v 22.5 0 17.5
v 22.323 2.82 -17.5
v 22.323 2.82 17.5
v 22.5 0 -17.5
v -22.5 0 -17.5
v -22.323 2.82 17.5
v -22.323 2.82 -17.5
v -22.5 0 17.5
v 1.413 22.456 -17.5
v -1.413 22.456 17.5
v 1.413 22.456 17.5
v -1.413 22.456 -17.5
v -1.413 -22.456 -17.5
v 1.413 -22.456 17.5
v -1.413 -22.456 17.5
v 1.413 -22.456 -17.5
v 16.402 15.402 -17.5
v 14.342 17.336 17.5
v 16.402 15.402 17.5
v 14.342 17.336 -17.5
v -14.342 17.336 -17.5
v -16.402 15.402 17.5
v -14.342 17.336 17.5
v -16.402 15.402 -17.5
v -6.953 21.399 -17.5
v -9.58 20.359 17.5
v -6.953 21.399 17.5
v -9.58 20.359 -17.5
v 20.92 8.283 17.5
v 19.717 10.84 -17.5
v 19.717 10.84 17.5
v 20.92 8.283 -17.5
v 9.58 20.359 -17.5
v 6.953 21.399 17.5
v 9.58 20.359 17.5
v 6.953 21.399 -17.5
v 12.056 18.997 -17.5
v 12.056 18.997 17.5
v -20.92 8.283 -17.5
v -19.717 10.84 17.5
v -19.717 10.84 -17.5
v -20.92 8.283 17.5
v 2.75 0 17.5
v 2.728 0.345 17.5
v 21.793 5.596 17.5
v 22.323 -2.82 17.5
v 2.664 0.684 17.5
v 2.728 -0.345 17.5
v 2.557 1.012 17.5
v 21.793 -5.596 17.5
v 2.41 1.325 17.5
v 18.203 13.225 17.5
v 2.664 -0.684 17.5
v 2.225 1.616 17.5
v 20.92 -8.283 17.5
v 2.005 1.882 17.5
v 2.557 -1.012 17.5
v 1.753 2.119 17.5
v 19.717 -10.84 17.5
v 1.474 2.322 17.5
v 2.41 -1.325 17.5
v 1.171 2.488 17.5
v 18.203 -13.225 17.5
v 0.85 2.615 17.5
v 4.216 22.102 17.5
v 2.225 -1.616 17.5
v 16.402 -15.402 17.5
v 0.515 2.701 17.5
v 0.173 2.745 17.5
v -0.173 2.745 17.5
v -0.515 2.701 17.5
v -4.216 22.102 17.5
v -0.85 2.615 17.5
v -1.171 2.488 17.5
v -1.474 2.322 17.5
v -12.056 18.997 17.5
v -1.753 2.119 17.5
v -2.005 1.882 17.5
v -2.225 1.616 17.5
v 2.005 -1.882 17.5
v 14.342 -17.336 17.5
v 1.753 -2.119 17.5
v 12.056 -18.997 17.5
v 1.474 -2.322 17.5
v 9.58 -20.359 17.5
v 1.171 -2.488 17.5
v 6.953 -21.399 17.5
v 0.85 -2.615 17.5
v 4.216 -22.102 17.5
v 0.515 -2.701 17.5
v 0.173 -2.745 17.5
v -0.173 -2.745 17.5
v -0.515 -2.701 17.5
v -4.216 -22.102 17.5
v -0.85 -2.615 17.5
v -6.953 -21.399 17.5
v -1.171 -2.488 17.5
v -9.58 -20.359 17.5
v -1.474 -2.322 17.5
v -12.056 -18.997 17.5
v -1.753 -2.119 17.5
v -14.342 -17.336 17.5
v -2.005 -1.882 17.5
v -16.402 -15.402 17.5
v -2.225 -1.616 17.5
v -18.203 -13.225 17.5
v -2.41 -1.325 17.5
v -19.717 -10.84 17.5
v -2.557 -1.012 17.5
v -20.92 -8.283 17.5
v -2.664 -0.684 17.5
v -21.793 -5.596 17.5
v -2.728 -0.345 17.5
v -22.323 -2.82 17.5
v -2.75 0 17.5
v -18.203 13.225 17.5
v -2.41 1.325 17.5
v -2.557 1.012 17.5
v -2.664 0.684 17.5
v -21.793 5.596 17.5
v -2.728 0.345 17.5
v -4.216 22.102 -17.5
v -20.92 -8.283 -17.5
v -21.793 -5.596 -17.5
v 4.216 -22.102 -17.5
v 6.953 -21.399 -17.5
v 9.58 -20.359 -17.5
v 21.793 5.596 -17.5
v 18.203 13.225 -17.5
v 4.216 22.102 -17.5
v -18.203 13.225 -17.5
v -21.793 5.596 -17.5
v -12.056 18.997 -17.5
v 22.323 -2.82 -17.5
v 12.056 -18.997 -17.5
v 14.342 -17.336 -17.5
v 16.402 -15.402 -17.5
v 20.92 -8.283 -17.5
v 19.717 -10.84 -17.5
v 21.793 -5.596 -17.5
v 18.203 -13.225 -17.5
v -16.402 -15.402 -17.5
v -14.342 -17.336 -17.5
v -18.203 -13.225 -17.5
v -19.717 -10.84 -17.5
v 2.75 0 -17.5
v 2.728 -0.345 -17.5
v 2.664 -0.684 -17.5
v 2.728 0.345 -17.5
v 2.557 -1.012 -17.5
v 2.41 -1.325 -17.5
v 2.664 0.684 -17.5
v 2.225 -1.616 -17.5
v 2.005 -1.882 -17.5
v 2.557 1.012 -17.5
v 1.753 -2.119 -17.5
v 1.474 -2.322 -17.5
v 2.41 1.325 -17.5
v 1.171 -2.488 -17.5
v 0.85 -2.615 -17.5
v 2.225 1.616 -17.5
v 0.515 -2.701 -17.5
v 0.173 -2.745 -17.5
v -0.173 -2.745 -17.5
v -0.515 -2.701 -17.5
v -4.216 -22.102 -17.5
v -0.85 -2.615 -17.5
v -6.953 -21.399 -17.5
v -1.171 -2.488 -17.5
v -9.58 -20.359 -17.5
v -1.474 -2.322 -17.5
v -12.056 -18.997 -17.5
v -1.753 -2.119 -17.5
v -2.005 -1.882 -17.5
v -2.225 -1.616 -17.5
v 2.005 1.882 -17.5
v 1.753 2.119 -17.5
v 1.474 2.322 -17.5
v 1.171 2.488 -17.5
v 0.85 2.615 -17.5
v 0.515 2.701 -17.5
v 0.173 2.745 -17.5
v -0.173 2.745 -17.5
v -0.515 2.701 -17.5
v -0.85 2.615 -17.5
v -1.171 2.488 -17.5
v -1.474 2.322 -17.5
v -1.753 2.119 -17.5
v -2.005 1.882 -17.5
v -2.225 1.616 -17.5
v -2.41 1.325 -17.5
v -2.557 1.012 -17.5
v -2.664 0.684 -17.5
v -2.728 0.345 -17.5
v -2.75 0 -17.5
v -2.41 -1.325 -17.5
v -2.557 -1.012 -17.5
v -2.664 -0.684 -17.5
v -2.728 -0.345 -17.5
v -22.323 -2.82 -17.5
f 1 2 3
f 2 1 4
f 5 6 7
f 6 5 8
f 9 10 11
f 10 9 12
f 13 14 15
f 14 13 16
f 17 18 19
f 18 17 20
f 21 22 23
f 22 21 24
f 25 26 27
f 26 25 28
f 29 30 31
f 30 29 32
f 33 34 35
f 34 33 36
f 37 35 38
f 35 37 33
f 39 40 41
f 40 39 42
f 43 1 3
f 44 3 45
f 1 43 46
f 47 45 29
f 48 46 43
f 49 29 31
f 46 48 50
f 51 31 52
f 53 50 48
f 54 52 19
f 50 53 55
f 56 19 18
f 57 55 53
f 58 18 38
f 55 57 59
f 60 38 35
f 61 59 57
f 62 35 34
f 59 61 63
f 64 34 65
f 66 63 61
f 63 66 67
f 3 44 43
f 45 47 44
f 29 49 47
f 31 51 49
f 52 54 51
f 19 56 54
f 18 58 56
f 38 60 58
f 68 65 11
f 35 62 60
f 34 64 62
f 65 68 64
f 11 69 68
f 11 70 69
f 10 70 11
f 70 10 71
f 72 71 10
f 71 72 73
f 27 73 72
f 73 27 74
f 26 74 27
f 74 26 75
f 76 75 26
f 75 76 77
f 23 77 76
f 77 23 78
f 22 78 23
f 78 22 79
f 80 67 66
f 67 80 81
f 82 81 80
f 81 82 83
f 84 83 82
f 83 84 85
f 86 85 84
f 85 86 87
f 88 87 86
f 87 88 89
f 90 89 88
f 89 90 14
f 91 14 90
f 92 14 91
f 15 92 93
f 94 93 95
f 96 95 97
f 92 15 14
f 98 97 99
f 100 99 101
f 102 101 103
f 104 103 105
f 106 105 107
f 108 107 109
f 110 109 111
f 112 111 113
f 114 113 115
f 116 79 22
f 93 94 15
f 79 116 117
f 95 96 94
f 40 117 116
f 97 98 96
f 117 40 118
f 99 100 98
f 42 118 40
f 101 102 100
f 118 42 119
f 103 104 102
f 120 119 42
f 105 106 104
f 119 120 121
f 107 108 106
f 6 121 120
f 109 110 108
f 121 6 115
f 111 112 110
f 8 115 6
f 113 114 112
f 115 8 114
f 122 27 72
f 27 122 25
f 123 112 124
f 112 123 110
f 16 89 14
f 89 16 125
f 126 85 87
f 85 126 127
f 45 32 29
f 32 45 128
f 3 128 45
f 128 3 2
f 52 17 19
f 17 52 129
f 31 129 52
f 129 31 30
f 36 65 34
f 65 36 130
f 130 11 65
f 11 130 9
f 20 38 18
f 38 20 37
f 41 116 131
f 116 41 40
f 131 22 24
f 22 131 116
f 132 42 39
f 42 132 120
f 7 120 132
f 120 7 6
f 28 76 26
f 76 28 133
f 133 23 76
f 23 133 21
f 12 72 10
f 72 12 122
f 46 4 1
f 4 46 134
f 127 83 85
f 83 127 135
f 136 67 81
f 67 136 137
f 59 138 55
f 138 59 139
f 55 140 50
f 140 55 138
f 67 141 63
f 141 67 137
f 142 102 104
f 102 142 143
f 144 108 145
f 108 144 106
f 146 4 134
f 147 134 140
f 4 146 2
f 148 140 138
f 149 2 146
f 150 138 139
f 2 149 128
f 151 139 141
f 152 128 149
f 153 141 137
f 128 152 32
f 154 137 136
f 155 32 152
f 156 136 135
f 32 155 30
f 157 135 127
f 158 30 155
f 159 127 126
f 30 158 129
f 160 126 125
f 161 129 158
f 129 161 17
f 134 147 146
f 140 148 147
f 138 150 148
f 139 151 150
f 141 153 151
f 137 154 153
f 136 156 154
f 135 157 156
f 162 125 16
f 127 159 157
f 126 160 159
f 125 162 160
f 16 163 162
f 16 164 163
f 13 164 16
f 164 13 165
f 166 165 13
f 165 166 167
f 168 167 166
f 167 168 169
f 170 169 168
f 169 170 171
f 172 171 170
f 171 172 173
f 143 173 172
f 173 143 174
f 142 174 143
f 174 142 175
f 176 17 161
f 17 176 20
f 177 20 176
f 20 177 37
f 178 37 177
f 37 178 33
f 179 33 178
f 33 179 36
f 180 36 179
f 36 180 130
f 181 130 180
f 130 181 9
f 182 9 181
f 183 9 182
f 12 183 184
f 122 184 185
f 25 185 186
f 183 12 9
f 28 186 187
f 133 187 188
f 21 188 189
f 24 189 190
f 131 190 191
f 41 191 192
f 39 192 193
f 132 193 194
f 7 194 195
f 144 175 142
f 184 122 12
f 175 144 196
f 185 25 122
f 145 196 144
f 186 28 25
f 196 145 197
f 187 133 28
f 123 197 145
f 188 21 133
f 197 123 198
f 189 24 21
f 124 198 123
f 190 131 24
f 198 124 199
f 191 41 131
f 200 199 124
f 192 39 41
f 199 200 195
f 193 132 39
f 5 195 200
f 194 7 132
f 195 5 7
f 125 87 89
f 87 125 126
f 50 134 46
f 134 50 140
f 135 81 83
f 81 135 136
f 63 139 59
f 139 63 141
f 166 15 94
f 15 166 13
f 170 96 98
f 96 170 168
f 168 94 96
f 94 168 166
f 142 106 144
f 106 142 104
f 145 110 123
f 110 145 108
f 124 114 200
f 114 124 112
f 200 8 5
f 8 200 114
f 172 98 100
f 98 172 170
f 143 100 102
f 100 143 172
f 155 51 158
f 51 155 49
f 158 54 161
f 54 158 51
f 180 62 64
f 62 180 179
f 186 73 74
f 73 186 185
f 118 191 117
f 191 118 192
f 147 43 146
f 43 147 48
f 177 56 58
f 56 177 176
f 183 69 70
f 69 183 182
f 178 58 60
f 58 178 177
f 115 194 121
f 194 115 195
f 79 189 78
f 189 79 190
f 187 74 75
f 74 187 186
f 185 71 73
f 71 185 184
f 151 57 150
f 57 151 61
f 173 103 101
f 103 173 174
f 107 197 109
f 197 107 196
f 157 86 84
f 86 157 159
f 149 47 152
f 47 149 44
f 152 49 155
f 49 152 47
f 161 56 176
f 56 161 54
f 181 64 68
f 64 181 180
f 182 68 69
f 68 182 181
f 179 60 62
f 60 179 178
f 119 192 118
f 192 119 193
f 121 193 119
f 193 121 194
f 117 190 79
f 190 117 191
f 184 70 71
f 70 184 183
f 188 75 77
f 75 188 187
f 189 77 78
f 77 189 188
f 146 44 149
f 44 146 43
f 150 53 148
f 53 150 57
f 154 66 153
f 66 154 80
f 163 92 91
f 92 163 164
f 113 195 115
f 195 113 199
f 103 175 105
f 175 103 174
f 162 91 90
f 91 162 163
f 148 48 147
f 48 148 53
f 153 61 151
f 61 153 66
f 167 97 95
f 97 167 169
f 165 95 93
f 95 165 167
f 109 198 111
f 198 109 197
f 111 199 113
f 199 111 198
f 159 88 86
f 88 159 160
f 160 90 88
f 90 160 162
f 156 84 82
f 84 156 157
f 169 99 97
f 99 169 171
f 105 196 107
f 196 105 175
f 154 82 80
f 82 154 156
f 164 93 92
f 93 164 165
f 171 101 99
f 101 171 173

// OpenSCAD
$fn = 50;


difference() {
	union() {
		translate(v = [0, 0, -17.5000000000]) {
			cylinder(h = 35, r = 22.5000000000);
		}
	}
	union() {
		translate(v = [0, 0, -100.0000000000]) {
			cylinder(h = 200, r = 2.7500000000);
		}
	}
}
